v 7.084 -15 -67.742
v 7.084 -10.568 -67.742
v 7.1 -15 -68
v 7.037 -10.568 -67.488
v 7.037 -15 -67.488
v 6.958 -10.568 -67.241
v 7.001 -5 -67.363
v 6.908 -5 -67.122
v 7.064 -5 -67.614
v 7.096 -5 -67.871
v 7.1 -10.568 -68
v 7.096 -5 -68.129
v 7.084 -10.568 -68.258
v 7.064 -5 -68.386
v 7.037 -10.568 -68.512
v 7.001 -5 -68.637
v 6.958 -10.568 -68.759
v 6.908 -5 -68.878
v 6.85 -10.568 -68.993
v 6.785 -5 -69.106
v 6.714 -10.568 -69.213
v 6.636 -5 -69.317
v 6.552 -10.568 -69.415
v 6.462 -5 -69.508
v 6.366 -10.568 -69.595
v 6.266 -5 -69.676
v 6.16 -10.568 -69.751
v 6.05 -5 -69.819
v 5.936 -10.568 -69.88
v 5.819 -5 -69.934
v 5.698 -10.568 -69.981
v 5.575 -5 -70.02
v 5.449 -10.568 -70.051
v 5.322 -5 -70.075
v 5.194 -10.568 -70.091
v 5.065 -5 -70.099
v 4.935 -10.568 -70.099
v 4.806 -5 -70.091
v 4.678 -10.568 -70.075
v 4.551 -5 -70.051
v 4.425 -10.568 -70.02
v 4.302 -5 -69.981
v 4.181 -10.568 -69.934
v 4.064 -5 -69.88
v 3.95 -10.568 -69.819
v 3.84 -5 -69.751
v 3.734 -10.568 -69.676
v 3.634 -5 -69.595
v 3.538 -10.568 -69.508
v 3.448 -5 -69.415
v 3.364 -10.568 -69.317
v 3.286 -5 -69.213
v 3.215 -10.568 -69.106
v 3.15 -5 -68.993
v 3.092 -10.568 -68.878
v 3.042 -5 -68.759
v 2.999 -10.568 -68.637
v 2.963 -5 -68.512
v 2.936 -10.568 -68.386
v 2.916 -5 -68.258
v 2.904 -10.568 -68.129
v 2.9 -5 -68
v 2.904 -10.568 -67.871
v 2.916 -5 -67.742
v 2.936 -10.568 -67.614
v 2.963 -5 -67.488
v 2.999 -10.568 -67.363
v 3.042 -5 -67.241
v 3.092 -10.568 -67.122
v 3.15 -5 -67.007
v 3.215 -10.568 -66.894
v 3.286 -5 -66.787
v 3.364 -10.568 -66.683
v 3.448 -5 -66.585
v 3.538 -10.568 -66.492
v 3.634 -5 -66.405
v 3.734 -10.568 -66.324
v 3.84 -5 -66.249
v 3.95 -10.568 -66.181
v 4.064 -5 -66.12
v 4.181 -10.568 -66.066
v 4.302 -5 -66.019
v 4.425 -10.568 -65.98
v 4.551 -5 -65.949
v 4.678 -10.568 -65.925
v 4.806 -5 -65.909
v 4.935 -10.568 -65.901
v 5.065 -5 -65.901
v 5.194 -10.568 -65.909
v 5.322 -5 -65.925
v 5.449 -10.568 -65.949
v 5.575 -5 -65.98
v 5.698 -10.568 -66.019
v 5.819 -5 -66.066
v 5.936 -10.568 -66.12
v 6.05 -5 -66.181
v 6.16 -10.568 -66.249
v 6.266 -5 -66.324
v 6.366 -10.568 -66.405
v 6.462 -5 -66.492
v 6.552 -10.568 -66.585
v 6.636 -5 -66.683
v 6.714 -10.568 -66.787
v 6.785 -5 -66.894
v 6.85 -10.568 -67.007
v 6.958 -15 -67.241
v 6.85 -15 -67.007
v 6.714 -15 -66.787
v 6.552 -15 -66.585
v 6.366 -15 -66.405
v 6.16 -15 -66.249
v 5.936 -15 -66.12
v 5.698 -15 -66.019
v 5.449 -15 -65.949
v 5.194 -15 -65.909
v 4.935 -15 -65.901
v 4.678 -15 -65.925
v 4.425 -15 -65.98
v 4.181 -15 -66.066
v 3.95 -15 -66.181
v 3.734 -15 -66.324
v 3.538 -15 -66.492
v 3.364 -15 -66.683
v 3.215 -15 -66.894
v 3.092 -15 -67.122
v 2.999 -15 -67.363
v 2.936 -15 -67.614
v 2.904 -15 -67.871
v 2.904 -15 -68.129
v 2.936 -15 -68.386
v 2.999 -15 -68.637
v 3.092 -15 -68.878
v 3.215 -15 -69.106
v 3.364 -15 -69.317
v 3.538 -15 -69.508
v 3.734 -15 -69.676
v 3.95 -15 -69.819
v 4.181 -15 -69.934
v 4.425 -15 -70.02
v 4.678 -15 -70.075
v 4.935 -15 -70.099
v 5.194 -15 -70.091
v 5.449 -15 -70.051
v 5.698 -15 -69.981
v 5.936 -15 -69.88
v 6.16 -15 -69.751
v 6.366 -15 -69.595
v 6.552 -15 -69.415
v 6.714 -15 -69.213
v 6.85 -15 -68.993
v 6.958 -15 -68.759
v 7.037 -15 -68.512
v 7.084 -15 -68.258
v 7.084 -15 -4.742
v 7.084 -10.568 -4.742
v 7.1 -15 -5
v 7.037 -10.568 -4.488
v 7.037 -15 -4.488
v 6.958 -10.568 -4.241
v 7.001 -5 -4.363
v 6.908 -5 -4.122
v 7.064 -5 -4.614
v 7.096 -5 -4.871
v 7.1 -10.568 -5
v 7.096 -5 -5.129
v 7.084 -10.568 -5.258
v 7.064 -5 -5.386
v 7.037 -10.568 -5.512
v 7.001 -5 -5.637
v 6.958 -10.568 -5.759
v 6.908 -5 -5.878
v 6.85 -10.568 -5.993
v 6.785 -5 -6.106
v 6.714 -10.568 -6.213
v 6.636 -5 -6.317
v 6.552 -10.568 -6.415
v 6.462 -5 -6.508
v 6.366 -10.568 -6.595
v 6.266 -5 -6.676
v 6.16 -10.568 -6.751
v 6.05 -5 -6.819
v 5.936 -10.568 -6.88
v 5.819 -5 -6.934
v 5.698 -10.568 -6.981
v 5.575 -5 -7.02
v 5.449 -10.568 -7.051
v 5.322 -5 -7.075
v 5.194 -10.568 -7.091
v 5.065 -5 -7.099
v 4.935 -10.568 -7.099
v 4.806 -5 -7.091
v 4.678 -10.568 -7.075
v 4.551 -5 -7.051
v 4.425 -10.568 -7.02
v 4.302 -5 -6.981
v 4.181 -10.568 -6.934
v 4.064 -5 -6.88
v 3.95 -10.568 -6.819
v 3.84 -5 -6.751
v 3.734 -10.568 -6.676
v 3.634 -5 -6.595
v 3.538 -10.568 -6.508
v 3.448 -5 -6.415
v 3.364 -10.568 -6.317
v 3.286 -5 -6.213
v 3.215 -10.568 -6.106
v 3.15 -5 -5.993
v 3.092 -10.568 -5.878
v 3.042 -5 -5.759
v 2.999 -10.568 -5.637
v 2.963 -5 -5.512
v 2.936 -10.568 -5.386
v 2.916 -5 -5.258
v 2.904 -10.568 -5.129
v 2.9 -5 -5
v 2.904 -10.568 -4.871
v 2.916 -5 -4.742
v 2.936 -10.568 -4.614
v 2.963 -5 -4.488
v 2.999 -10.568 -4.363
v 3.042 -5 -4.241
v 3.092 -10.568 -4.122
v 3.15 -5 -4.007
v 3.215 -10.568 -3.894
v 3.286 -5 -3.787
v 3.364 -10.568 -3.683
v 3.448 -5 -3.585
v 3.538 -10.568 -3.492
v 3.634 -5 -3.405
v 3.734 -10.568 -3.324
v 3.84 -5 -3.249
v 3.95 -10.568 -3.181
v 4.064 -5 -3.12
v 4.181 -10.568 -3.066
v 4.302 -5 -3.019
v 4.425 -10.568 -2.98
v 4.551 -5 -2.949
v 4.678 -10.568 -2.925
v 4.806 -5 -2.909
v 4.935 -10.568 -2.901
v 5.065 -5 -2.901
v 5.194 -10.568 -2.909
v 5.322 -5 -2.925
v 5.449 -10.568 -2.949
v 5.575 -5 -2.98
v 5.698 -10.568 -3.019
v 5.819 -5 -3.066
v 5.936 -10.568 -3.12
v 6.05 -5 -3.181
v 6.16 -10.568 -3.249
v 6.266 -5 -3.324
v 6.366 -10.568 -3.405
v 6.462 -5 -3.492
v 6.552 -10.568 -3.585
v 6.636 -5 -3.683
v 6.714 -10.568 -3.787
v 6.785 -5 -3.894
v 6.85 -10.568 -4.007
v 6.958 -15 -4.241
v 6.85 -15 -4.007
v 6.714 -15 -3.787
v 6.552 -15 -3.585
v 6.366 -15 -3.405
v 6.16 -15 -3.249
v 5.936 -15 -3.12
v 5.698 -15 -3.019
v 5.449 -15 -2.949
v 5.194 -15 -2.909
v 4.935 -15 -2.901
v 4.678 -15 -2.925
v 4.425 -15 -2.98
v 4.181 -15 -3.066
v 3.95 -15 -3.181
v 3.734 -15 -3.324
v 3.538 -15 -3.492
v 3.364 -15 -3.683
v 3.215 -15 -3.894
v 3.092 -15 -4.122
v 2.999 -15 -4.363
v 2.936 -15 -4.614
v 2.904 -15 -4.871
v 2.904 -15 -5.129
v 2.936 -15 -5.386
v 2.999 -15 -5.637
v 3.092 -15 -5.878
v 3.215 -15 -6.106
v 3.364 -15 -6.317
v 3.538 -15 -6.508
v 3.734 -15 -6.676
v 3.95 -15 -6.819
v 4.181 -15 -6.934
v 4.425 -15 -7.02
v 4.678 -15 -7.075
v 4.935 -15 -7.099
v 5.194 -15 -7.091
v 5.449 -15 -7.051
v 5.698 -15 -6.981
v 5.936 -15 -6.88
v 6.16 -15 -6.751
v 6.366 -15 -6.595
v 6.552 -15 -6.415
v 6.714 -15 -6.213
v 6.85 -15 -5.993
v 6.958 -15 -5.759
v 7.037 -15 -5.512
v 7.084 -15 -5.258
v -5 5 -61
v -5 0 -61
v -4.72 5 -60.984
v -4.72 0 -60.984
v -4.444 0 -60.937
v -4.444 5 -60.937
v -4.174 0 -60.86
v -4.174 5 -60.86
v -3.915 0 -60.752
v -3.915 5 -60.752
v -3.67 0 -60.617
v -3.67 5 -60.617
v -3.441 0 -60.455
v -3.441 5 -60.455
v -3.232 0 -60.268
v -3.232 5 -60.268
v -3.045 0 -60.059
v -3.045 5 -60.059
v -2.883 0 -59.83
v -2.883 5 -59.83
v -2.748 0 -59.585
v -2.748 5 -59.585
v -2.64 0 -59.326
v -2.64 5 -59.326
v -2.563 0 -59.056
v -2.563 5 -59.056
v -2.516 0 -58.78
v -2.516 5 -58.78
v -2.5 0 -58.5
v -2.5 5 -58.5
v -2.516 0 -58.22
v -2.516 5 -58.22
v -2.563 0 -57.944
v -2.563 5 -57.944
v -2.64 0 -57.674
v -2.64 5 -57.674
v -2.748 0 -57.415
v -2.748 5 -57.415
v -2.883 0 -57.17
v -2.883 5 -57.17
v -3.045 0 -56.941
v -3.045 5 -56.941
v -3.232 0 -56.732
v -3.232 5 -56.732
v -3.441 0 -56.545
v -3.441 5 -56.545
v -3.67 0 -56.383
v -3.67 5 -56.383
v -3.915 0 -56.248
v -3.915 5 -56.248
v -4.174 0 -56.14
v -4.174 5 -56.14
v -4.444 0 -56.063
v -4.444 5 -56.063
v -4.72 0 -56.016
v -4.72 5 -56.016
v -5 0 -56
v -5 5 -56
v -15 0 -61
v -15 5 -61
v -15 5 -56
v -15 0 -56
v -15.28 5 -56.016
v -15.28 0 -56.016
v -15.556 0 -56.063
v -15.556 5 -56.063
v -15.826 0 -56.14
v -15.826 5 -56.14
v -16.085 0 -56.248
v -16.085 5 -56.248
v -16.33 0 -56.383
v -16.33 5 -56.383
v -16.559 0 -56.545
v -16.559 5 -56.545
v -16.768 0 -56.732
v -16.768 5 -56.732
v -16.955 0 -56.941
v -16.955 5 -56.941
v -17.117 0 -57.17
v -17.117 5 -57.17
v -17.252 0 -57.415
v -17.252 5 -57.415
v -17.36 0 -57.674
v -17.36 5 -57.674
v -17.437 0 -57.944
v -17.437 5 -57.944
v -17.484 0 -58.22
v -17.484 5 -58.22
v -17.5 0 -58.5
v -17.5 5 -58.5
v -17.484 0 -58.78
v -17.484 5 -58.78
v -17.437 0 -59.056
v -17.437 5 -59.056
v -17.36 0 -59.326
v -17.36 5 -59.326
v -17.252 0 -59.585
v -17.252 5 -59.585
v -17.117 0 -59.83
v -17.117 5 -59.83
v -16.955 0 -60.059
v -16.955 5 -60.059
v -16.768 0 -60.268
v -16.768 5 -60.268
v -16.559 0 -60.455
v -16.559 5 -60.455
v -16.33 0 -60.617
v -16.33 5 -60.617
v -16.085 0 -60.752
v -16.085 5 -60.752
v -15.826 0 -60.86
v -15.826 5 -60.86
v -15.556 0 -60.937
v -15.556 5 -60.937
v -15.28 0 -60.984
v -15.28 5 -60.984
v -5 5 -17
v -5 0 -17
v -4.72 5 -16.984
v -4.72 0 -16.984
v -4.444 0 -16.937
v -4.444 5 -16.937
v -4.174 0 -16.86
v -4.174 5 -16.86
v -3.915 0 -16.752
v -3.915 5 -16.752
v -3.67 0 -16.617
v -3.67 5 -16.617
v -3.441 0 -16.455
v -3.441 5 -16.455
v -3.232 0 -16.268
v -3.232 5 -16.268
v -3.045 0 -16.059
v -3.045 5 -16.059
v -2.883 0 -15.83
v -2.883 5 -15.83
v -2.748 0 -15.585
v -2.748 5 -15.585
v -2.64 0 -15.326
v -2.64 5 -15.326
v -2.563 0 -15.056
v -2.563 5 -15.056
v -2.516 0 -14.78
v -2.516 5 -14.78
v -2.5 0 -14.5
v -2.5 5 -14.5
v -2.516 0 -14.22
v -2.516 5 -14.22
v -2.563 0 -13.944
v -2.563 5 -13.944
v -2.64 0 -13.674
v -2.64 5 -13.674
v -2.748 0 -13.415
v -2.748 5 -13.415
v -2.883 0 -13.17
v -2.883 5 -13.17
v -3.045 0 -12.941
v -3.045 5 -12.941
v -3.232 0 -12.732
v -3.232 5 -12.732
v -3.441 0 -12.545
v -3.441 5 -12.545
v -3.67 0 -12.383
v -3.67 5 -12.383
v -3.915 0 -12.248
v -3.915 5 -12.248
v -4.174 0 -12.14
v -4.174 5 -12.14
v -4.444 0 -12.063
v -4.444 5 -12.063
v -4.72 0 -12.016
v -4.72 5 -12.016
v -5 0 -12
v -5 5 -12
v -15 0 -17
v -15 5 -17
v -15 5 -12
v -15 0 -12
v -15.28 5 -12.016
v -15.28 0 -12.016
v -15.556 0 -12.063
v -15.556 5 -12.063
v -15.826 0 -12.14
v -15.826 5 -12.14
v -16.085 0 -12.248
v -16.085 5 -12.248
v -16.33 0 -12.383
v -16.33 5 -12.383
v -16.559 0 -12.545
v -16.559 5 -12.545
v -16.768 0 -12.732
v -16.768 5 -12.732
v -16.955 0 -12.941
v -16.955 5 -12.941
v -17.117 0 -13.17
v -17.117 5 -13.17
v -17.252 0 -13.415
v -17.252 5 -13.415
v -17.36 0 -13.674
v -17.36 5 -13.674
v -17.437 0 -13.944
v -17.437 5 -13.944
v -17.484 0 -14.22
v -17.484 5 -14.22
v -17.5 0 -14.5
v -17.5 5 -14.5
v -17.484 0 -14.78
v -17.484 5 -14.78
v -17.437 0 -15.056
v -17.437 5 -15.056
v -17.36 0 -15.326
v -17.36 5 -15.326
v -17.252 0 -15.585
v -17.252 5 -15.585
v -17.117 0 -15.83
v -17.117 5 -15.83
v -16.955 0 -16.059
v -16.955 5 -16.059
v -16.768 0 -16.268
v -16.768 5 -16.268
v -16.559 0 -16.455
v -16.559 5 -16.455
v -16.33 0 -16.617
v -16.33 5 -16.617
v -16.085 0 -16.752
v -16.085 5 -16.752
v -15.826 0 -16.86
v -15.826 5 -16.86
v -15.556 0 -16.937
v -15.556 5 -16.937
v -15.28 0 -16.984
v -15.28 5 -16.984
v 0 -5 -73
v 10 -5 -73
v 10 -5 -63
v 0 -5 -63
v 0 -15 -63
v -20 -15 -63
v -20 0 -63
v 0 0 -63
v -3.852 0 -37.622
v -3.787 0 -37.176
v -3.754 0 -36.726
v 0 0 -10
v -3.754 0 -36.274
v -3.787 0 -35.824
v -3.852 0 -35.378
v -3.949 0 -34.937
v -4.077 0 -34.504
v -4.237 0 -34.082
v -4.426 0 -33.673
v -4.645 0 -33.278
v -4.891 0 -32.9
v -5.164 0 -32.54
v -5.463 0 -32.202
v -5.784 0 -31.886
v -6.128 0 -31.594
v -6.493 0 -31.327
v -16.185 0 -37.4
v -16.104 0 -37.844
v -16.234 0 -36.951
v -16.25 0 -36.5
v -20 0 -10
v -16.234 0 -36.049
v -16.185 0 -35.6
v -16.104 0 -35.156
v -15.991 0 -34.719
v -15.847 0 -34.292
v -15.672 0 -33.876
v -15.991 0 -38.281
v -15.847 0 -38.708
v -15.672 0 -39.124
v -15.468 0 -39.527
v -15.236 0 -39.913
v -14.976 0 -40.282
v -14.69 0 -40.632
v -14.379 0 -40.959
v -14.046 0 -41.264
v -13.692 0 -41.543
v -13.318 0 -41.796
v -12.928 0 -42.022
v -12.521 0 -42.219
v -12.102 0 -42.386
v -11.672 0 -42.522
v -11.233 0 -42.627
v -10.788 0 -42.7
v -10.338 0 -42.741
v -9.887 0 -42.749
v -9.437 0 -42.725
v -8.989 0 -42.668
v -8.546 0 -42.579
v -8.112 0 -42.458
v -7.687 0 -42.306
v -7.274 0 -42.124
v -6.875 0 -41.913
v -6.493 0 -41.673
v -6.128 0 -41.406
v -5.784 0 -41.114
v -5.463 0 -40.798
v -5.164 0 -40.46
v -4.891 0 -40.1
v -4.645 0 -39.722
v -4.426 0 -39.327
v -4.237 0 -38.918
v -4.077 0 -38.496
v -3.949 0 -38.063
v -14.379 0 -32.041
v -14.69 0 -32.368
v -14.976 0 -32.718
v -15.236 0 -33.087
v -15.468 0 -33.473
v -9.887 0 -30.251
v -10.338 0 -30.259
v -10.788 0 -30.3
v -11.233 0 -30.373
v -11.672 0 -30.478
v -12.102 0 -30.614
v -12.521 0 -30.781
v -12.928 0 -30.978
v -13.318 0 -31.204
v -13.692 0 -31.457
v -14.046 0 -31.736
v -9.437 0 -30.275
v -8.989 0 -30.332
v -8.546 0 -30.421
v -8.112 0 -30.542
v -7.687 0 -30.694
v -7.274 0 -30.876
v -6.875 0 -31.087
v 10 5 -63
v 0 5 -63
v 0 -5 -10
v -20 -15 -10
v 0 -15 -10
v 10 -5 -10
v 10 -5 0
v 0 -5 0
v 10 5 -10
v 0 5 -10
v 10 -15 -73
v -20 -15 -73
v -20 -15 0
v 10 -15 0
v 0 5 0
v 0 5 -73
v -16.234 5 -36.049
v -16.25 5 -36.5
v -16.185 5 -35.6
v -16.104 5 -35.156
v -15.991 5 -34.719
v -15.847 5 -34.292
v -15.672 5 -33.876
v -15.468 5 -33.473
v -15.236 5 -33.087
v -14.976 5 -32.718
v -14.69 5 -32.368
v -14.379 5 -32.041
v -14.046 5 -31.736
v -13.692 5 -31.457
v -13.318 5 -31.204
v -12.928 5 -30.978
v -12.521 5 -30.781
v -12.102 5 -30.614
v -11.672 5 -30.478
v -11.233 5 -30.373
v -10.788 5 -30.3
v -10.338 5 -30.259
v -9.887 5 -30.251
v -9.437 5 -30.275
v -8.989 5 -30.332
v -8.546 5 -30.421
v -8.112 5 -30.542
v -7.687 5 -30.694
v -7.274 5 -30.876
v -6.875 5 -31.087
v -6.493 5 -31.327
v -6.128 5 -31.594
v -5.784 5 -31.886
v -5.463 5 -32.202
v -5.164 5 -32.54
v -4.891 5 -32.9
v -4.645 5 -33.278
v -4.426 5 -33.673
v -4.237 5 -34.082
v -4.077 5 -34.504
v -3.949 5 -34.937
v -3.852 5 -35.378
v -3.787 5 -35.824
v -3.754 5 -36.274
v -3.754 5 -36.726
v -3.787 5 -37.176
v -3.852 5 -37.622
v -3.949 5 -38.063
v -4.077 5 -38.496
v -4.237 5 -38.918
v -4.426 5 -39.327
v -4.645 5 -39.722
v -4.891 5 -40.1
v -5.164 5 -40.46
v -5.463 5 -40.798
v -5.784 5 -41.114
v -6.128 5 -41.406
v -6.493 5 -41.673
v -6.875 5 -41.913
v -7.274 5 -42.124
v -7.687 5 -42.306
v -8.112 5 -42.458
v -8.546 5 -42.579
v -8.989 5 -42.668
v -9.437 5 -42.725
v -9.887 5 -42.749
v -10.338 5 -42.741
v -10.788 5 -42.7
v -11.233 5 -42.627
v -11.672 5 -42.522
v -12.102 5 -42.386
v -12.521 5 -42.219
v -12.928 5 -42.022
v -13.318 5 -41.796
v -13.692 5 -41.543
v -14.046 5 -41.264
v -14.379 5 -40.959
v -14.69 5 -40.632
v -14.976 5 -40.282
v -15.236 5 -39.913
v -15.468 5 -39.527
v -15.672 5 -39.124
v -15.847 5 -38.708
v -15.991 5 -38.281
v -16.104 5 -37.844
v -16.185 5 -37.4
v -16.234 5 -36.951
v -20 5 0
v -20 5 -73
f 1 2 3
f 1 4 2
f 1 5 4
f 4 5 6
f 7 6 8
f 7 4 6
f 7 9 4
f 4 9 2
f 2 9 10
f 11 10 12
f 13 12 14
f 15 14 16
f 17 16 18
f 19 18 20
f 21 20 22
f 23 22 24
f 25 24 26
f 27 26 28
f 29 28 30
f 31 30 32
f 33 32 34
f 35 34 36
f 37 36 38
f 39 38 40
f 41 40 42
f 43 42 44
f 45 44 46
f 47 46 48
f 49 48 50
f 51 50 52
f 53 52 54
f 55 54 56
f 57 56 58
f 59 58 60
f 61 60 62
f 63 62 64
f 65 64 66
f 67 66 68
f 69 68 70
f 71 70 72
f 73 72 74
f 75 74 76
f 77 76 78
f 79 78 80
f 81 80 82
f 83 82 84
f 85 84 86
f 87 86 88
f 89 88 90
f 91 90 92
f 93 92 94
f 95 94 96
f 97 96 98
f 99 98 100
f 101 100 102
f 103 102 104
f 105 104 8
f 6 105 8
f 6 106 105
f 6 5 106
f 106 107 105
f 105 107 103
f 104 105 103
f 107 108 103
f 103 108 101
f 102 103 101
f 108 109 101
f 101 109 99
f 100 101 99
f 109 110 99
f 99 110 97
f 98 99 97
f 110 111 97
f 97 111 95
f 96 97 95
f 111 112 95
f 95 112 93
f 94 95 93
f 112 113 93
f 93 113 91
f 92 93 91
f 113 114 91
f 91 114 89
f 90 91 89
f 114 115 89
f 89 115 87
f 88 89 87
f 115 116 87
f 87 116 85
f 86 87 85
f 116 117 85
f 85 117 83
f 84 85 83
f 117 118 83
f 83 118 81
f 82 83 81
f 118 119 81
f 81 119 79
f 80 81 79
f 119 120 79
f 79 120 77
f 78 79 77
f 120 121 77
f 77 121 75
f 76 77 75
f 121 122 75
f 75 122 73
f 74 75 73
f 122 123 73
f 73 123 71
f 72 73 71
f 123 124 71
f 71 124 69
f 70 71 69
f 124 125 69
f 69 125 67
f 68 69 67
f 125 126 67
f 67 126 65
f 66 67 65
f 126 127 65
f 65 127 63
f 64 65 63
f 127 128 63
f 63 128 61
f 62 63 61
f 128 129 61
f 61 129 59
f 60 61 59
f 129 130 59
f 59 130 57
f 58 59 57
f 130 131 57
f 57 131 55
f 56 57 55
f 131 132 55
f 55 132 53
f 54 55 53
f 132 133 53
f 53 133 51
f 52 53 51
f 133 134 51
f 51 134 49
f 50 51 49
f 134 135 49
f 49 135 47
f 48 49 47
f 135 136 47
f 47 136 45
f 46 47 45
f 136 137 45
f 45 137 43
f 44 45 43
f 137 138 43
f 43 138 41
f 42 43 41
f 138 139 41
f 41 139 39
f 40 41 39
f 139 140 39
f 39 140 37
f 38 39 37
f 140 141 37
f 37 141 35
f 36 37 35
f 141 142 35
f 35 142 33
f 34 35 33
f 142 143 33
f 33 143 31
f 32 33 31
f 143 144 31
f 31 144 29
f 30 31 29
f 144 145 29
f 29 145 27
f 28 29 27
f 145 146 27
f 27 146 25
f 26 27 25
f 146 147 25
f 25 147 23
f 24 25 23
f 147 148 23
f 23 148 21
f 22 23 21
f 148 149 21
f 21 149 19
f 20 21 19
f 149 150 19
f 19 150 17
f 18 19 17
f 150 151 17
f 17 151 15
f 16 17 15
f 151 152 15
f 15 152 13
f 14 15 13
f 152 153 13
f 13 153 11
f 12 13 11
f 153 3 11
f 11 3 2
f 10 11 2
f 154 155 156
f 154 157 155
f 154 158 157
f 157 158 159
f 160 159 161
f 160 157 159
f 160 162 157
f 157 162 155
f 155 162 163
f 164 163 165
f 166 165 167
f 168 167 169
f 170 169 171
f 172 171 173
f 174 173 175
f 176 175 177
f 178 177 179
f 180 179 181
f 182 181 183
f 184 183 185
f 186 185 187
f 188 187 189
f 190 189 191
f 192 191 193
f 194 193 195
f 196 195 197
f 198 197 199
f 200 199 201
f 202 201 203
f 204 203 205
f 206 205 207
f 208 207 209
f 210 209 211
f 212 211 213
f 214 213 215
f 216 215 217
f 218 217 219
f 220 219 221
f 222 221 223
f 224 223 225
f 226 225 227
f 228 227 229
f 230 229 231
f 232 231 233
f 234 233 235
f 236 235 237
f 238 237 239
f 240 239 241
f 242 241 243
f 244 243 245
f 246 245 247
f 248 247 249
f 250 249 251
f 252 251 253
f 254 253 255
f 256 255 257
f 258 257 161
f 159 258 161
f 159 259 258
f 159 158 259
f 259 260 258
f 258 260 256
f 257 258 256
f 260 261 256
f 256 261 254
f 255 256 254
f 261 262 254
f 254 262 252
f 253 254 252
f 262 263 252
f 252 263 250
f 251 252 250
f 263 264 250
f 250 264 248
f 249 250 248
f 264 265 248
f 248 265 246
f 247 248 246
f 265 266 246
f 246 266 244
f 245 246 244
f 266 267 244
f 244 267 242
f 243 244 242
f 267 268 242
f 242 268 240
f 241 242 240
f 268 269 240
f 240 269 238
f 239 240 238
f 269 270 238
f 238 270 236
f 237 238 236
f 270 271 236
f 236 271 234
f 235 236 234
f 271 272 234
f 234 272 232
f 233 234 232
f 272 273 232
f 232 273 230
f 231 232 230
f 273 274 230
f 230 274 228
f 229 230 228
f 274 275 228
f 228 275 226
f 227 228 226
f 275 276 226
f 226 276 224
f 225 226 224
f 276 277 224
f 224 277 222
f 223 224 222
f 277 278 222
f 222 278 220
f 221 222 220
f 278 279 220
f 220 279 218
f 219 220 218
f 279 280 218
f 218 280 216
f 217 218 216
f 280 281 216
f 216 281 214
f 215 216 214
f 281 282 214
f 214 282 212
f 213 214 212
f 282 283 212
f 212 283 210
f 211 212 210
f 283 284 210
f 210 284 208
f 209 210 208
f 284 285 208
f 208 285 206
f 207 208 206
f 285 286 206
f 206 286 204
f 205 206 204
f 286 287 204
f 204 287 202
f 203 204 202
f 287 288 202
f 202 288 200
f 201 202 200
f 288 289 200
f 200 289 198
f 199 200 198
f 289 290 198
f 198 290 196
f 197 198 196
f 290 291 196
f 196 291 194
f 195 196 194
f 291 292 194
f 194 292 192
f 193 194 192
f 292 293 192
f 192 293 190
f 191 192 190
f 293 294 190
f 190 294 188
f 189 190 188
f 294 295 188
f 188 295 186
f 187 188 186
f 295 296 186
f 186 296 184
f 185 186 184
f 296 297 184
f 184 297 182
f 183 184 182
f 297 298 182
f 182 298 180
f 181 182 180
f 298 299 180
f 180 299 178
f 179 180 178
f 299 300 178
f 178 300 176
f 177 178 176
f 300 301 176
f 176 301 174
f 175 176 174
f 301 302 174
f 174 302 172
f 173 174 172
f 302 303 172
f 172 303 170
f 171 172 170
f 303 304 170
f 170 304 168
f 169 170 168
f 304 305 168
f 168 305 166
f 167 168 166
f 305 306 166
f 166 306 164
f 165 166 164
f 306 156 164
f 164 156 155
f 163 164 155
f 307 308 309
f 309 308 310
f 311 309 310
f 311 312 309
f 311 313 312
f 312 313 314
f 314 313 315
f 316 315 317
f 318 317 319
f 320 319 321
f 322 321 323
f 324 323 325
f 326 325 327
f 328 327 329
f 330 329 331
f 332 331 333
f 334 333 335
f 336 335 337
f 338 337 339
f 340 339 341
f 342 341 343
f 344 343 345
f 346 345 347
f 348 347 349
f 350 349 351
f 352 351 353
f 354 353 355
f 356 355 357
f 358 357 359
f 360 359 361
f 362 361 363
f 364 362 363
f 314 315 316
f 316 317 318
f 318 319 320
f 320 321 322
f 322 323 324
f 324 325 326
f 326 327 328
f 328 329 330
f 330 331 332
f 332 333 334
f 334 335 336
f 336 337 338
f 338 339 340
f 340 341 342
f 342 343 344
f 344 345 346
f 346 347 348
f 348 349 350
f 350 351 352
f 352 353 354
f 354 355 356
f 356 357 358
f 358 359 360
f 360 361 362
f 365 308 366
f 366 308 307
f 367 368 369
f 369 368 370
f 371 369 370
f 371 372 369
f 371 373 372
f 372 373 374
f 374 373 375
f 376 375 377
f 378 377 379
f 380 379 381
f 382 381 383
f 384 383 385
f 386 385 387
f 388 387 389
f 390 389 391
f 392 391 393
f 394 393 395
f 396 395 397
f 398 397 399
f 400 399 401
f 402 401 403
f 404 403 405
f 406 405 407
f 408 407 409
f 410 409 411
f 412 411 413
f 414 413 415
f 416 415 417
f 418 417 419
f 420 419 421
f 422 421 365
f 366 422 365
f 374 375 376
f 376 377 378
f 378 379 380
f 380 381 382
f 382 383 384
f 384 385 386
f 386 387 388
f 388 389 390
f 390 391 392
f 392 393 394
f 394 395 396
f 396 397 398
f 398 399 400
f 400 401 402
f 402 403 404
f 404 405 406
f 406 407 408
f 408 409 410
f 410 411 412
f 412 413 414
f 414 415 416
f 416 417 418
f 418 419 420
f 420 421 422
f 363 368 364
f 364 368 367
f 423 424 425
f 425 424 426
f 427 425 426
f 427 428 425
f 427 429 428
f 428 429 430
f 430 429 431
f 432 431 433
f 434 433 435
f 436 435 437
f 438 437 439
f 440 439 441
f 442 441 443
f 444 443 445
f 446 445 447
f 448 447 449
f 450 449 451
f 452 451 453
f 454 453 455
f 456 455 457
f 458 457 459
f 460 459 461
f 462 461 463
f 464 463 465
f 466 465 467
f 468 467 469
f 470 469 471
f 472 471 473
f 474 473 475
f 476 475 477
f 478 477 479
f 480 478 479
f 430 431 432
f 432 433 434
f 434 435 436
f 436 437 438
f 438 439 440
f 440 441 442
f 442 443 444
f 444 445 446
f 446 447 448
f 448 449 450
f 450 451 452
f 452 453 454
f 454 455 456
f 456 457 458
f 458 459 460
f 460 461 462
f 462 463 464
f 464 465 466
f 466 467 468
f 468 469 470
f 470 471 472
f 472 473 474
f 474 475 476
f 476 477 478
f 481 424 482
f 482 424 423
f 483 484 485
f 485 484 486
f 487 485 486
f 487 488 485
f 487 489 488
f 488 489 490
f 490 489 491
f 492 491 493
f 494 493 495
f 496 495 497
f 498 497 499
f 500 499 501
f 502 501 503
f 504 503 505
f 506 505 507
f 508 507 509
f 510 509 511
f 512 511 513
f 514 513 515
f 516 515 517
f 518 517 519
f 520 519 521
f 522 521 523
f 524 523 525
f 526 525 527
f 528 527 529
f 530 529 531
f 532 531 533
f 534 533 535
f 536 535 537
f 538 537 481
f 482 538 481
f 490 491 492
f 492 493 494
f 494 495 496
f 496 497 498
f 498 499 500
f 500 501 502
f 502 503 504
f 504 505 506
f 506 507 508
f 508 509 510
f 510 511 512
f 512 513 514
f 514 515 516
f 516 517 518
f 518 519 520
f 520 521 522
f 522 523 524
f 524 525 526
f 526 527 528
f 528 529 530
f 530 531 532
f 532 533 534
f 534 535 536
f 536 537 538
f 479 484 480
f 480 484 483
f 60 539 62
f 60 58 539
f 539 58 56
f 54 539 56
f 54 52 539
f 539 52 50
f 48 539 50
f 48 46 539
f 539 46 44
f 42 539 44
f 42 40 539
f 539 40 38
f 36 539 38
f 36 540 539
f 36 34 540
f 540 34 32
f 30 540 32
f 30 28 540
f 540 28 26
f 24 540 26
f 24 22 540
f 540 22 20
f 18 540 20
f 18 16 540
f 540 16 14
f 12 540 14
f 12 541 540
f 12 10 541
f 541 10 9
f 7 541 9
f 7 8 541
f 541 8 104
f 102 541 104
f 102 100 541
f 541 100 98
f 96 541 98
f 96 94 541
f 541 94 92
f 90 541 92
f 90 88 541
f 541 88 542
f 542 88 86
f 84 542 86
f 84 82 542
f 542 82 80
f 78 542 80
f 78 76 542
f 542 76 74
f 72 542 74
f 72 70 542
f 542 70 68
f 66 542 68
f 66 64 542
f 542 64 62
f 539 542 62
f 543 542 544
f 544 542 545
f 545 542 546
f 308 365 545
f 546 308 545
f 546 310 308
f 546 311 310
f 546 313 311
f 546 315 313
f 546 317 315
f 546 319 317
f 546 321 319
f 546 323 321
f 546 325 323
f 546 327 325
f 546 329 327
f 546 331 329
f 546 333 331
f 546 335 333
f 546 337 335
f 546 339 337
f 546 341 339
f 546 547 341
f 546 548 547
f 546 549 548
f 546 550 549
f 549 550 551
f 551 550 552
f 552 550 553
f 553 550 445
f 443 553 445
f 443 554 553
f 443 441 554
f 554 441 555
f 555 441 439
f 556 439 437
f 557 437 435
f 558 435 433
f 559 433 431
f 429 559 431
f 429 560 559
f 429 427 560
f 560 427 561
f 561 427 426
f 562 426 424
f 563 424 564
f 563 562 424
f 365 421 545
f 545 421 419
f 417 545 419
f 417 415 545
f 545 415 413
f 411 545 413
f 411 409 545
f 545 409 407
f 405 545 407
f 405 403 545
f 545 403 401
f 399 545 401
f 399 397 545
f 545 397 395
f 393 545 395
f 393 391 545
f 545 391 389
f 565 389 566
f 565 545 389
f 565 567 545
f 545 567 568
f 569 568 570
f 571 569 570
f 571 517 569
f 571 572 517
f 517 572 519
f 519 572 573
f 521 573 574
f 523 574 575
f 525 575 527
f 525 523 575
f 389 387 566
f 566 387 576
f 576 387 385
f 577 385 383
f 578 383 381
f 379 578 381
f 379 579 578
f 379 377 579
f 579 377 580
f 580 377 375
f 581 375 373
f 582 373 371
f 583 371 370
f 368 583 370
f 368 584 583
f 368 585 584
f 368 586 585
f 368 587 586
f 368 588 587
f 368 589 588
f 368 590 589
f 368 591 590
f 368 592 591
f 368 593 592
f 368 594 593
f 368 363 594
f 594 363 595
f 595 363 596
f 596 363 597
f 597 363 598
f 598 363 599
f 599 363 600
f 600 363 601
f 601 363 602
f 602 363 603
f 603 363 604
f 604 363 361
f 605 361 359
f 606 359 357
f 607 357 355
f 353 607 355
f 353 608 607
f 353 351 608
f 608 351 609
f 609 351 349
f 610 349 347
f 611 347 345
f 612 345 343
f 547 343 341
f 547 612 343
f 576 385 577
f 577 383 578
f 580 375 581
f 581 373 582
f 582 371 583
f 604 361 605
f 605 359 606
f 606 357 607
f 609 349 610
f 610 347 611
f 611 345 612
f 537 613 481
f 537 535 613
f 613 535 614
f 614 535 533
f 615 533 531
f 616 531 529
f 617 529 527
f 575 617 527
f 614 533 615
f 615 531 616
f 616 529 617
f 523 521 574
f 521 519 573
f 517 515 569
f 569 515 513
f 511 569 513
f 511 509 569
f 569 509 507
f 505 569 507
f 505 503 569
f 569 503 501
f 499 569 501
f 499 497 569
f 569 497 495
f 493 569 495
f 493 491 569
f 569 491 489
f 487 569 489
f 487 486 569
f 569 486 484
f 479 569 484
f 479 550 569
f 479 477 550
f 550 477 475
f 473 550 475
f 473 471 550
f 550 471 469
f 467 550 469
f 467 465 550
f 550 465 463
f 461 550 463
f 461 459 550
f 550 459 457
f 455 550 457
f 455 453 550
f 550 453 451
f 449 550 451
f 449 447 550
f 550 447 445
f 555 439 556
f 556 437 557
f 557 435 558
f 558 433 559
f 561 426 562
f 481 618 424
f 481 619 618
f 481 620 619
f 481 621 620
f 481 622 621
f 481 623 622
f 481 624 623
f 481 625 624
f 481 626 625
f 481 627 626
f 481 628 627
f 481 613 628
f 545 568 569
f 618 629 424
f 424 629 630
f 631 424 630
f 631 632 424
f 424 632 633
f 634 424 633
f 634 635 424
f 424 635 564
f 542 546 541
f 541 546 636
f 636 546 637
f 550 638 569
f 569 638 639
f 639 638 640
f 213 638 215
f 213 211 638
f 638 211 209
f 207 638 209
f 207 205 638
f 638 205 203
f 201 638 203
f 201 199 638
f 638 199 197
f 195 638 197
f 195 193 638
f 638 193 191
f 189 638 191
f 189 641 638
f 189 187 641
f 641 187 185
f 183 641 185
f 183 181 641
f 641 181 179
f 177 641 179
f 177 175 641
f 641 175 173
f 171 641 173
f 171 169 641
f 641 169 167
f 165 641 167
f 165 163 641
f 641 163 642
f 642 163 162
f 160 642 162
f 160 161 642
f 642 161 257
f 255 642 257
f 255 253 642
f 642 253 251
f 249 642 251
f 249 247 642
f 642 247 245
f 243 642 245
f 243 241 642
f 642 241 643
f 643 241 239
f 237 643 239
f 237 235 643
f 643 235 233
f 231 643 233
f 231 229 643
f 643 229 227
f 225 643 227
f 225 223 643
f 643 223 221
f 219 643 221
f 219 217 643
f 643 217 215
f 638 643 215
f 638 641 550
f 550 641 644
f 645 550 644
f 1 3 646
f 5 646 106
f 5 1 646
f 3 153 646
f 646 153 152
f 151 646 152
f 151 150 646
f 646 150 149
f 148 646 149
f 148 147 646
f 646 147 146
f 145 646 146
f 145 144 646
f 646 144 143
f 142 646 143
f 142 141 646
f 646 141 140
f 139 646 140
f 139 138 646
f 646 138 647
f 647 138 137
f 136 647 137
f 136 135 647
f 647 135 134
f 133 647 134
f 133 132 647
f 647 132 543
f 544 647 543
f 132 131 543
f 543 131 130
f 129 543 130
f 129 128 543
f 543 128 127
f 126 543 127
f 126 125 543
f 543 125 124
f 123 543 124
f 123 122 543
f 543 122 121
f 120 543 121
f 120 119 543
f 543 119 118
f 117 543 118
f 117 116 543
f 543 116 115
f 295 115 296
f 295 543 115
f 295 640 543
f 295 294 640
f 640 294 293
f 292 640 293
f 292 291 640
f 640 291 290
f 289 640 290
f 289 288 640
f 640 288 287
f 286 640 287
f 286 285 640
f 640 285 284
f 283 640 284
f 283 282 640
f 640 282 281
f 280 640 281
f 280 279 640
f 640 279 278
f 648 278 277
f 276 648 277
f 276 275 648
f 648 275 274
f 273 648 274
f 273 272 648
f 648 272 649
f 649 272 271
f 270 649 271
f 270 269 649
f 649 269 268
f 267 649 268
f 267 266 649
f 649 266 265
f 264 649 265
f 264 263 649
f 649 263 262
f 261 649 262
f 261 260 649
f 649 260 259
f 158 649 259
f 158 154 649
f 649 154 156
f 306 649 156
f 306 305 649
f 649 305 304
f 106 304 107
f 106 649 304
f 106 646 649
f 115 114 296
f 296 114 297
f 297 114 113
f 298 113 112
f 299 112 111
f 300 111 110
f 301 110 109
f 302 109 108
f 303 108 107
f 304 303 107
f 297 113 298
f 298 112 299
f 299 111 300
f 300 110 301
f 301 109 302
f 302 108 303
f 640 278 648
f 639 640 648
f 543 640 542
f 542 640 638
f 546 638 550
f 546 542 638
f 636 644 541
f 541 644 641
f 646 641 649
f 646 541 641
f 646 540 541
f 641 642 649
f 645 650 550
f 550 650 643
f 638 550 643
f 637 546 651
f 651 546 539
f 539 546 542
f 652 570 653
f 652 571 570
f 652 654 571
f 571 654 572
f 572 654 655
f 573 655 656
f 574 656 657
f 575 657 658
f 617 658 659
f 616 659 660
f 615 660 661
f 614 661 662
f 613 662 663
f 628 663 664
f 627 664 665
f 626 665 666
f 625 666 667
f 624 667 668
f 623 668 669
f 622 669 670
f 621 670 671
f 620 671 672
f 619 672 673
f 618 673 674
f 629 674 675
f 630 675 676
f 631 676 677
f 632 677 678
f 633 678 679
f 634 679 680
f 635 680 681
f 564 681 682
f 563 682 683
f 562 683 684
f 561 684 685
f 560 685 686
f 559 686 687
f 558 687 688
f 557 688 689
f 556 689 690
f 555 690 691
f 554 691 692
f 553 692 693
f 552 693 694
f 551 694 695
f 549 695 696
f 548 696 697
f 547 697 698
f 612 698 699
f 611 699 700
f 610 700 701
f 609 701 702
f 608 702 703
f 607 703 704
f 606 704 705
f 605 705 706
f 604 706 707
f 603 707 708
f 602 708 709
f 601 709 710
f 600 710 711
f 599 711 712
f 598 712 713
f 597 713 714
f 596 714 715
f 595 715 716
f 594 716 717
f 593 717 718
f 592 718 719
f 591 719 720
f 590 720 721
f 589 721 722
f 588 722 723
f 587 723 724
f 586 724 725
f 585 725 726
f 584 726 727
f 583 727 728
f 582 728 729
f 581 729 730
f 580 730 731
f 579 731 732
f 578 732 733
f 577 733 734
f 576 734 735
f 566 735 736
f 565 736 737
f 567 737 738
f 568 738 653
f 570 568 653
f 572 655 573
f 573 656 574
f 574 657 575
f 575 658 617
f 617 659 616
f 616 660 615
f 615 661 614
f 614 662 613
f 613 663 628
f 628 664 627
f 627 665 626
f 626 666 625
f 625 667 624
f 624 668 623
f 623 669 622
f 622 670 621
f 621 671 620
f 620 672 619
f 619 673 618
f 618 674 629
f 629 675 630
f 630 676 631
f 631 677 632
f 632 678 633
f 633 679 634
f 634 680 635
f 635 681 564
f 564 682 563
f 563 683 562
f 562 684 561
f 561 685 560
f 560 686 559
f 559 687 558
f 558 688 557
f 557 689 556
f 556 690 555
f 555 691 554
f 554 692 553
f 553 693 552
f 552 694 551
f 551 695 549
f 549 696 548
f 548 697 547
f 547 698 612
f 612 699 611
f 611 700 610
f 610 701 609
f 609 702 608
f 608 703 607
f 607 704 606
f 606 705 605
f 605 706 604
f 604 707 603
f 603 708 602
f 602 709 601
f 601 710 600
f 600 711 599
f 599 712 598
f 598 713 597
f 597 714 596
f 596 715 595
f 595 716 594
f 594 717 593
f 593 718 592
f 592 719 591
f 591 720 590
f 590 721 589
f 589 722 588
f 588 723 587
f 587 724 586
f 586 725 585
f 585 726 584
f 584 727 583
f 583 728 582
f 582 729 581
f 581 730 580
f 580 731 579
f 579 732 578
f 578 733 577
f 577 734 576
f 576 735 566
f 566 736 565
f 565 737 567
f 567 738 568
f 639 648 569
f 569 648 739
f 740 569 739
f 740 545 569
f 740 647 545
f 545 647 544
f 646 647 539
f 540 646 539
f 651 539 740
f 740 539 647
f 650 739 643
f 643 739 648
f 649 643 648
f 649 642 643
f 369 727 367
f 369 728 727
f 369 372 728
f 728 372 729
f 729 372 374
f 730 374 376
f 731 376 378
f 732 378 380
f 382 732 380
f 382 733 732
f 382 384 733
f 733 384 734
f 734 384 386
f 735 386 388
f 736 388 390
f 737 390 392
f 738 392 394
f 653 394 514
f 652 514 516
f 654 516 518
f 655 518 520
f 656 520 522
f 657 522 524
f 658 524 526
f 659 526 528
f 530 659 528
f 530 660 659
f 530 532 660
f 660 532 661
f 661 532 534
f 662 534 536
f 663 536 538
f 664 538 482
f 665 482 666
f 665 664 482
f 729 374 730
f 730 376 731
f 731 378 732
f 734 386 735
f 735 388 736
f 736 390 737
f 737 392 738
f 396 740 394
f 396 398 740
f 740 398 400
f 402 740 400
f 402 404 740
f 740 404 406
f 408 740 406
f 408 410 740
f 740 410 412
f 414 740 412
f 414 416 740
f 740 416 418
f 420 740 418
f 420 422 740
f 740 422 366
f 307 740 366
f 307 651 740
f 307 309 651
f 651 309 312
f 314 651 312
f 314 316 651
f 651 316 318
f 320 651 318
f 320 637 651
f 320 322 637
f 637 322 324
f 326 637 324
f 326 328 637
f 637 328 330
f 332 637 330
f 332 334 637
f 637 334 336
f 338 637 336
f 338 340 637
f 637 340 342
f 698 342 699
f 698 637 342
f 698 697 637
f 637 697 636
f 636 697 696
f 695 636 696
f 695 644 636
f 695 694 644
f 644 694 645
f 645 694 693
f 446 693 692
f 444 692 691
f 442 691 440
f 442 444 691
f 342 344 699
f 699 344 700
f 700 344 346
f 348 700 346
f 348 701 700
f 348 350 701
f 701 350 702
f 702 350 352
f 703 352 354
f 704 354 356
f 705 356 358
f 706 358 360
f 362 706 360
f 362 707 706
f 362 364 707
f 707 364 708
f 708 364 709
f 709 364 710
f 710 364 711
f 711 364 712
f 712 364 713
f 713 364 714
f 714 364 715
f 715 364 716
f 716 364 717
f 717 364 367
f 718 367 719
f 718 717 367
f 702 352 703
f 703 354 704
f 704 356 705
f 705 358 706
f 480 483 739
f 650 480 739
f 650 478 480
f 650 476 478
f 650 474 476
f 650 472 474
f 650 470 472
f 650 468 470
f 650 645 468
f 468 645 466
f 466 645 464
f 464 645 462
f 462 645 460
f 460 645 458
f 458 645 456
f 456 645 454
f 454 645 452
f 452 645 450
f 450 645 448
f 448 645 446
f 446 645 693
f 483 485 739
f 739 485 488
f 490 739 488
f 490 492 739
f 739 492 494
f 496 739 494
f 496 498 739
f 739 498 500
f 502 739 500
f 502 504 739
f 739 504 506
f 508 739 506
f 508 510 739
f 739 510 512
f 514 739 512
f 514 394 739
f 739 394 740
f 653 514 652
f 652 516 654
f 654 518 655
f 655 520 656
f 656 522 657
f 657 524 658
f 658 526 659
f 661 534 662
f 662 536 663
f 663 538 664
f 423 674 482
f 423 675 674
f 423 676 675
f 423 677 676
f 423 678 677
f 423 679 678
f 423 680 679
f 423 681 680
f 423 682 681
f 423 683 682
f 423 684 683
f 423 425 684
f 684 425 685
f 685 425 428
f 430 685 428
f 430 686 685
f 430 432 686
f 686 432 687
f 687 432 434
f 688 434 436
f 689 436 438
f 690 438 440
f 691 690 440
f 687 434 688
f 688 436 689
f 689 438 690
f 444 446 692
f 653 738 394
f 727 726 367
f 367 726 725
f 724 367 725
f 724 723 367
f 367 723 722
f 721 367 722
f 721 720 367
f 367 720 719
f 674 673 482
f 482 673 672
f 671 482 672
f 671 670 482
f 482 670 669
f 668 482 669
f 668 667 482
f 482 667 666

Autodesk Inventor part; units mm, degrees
ref_plane "YZ Plane" through (0, 0, 0) normal (1, 0, 0) x (0, 1, 0)
ref_plane "XZ Plane" through (0, 0, 0) normal (0, 1, 0) x (-1, 0, 0)
ref_plane "XY Plane" through (0, 0, 0) normal (0, 0, 1) x (1, 0, 0)
sketch "Sketch1" plane through (0, 0, 0) normal (0, 1, 0) x (-1, 0, 0)
  line L0 (0, 0) -> (20, 0)
  line L1 (20, 0) -> (20, -73)
  line L2 (20, -73) -> (0, -73)
  line L3 (0, -73) -> (0, 0)
  circle A0 centre (10, -36.5) radius 6.25
  dimension "d0" = 20
  dimension "d1" = 73
  dimension "d2" = 12.5
  dimension "d3" = 10
  dimension "d4" = 36.5
extrude "Extrusion1" add sketch "Sketch1" along normal blind 5
sketch "Sketch2" plane through (0, 0, 0) normal (1, 0, 0) x (0, 0, -1)
  line L0 (10, 5) -> (63, 5)
  line L1 (63, 5) -> (63, -15)
  line L2 (63, -15) -> (10, -15)
  line L3 (10, -15) -> (10, 5)
  line L4 (0, 5) -> (73, 5) projected
  line L5 (0, 0) -> (0, 5) projected
  line L6 (73, 0) -> (73, 5) projected
  line L7 (73, 0) -> (0, 0) projected
  dimension "d7" = 10
  dimension "d8" = 10
  dimension "d9" = 15
extrude "Extrusion2" add sketch "Sketch2" along normal blind 10 contours L0 L1 L7 L3 | L7 L1 L2 L3
sketch "Sketch3" plane through (0, -15, -10) normal (0, 0, 1) x (1, 0, 0)
  line L0 (0, 10) -> (10, 10)
  line L1 (10, 10) -> (10, 0)
  line L2 (10, 0) -> (0, 0)
  line L3 (0, 0) -> (0, 10)
  line L4 (10, 20) -> (10, 0) projected
  line L5 (0, 0) -> (10, 0) projected
  point P0 (0, 15)
  dimension "d12" = 10
  dimension "d13" = 10
extrude "Extrusion3" add sketch "Sketch3" along normal blind 10
sketch "Sketch4" plane through (0, 0, 0) normal (0, -1, 0) x (1, 0, 0)
  line L0 (-20, -10) -> (0, -10)
  line L1 (0, -10) -> (0, 0)
  line L2 (0, 0) -> (-20, 0)
  line L3 (-20, 0) -> (-20, -10)
  line L4 (0, 0) -> (-20, 0) projected
  line L5 (-20, 0) -> (-20, -73) projected
  line L6 (0, -63) -> (0, 0) projected
  dimension "d16" = 10
extrude "Extrusion4" add sketch "Sketch4" along normal blind 15
sketch "Sketch5" plane through (0, -15, -63) normal (0, 0, -1) x (-1, 0, 0)
  line L0 (-10, 0) -> (-10, 10) projected
  line L1 (-10, 0) -> (-10, 10)
  line L2 (0, 10) -> (-10, 10) projected
  line L3 (-10, 10) -> (0, 10)
  line L4 (0, 10) -> (0, 15)
  line L5 (0, 10) -> (0, 20) projected
  line L6 (0, 15) -> (20, 15) projected
  line L7 (-10, 0) -> (20, 0) projected
  line L8 (20, 15) -> (20, 0)
  line L9 (20, 0) -> (-10, 0)
  dimension "d19" = 15
extrude "Extrusion5" add sketch "Sketch5" along normal blind 10
sketch "Sketch6" plane through (0, 5, 0) normal (0, 1, 0) x (1, 0, 0)
  line L0 (-5, 58.5) -> (-15, 58.5) construction
  line L1 (-5, 61) -> (-15, 61)
  line L2 (-15, 56) -> (-5, 56)
  arc A0 (-5, 56) -> (-5, 61) centre (-5, 58.5) ccw
  arc A1 (-15, 61) -> (-15, 56) centre (-15, 58.5) ccw
  line L3 (-5, 14.5) -> (-15, 14.5) construction
  line L4 (-5, 17) -> (-15, 17)
  line L5 (-15, 12) -> (-5, 12)
  arc A2 (-5, 12) -> (-5, 17) centre (-5, 14.5) ccw
  arc A3 (-15, 17) -> (-15, 12) centre (-15, 14.5) ccw
  line L6 (-20, 0) -> (0, 0) projected
  line L7 (0, 73) -> (-20, 73) projected
  line L8 (-20, 73) -> (-20, 0) projected
  point P0 (-10, 58.5)
  point P1 (-10, 14.5)
  dimension "d22" = 5
  dimension "d23" = 5
  dimension "d24" = 12
  dimension "d25" = 12
  dimension "d26" = 10
  dimension "d27" = 10
  dimension "d28" = 10
  dimension "d29" = 10
extrude "Extrusion6" cut sketch "Sketch6" against normal blind 10
hole "Hole1" at (5, -5, -5) direction (0, -1, 0) diameter 4.2 end through all
hole "Hole3" at (5, -5, -68) direction (0, -1, 0) diameter 4.2 end through all
properties part number "powerSwitchHolder"
